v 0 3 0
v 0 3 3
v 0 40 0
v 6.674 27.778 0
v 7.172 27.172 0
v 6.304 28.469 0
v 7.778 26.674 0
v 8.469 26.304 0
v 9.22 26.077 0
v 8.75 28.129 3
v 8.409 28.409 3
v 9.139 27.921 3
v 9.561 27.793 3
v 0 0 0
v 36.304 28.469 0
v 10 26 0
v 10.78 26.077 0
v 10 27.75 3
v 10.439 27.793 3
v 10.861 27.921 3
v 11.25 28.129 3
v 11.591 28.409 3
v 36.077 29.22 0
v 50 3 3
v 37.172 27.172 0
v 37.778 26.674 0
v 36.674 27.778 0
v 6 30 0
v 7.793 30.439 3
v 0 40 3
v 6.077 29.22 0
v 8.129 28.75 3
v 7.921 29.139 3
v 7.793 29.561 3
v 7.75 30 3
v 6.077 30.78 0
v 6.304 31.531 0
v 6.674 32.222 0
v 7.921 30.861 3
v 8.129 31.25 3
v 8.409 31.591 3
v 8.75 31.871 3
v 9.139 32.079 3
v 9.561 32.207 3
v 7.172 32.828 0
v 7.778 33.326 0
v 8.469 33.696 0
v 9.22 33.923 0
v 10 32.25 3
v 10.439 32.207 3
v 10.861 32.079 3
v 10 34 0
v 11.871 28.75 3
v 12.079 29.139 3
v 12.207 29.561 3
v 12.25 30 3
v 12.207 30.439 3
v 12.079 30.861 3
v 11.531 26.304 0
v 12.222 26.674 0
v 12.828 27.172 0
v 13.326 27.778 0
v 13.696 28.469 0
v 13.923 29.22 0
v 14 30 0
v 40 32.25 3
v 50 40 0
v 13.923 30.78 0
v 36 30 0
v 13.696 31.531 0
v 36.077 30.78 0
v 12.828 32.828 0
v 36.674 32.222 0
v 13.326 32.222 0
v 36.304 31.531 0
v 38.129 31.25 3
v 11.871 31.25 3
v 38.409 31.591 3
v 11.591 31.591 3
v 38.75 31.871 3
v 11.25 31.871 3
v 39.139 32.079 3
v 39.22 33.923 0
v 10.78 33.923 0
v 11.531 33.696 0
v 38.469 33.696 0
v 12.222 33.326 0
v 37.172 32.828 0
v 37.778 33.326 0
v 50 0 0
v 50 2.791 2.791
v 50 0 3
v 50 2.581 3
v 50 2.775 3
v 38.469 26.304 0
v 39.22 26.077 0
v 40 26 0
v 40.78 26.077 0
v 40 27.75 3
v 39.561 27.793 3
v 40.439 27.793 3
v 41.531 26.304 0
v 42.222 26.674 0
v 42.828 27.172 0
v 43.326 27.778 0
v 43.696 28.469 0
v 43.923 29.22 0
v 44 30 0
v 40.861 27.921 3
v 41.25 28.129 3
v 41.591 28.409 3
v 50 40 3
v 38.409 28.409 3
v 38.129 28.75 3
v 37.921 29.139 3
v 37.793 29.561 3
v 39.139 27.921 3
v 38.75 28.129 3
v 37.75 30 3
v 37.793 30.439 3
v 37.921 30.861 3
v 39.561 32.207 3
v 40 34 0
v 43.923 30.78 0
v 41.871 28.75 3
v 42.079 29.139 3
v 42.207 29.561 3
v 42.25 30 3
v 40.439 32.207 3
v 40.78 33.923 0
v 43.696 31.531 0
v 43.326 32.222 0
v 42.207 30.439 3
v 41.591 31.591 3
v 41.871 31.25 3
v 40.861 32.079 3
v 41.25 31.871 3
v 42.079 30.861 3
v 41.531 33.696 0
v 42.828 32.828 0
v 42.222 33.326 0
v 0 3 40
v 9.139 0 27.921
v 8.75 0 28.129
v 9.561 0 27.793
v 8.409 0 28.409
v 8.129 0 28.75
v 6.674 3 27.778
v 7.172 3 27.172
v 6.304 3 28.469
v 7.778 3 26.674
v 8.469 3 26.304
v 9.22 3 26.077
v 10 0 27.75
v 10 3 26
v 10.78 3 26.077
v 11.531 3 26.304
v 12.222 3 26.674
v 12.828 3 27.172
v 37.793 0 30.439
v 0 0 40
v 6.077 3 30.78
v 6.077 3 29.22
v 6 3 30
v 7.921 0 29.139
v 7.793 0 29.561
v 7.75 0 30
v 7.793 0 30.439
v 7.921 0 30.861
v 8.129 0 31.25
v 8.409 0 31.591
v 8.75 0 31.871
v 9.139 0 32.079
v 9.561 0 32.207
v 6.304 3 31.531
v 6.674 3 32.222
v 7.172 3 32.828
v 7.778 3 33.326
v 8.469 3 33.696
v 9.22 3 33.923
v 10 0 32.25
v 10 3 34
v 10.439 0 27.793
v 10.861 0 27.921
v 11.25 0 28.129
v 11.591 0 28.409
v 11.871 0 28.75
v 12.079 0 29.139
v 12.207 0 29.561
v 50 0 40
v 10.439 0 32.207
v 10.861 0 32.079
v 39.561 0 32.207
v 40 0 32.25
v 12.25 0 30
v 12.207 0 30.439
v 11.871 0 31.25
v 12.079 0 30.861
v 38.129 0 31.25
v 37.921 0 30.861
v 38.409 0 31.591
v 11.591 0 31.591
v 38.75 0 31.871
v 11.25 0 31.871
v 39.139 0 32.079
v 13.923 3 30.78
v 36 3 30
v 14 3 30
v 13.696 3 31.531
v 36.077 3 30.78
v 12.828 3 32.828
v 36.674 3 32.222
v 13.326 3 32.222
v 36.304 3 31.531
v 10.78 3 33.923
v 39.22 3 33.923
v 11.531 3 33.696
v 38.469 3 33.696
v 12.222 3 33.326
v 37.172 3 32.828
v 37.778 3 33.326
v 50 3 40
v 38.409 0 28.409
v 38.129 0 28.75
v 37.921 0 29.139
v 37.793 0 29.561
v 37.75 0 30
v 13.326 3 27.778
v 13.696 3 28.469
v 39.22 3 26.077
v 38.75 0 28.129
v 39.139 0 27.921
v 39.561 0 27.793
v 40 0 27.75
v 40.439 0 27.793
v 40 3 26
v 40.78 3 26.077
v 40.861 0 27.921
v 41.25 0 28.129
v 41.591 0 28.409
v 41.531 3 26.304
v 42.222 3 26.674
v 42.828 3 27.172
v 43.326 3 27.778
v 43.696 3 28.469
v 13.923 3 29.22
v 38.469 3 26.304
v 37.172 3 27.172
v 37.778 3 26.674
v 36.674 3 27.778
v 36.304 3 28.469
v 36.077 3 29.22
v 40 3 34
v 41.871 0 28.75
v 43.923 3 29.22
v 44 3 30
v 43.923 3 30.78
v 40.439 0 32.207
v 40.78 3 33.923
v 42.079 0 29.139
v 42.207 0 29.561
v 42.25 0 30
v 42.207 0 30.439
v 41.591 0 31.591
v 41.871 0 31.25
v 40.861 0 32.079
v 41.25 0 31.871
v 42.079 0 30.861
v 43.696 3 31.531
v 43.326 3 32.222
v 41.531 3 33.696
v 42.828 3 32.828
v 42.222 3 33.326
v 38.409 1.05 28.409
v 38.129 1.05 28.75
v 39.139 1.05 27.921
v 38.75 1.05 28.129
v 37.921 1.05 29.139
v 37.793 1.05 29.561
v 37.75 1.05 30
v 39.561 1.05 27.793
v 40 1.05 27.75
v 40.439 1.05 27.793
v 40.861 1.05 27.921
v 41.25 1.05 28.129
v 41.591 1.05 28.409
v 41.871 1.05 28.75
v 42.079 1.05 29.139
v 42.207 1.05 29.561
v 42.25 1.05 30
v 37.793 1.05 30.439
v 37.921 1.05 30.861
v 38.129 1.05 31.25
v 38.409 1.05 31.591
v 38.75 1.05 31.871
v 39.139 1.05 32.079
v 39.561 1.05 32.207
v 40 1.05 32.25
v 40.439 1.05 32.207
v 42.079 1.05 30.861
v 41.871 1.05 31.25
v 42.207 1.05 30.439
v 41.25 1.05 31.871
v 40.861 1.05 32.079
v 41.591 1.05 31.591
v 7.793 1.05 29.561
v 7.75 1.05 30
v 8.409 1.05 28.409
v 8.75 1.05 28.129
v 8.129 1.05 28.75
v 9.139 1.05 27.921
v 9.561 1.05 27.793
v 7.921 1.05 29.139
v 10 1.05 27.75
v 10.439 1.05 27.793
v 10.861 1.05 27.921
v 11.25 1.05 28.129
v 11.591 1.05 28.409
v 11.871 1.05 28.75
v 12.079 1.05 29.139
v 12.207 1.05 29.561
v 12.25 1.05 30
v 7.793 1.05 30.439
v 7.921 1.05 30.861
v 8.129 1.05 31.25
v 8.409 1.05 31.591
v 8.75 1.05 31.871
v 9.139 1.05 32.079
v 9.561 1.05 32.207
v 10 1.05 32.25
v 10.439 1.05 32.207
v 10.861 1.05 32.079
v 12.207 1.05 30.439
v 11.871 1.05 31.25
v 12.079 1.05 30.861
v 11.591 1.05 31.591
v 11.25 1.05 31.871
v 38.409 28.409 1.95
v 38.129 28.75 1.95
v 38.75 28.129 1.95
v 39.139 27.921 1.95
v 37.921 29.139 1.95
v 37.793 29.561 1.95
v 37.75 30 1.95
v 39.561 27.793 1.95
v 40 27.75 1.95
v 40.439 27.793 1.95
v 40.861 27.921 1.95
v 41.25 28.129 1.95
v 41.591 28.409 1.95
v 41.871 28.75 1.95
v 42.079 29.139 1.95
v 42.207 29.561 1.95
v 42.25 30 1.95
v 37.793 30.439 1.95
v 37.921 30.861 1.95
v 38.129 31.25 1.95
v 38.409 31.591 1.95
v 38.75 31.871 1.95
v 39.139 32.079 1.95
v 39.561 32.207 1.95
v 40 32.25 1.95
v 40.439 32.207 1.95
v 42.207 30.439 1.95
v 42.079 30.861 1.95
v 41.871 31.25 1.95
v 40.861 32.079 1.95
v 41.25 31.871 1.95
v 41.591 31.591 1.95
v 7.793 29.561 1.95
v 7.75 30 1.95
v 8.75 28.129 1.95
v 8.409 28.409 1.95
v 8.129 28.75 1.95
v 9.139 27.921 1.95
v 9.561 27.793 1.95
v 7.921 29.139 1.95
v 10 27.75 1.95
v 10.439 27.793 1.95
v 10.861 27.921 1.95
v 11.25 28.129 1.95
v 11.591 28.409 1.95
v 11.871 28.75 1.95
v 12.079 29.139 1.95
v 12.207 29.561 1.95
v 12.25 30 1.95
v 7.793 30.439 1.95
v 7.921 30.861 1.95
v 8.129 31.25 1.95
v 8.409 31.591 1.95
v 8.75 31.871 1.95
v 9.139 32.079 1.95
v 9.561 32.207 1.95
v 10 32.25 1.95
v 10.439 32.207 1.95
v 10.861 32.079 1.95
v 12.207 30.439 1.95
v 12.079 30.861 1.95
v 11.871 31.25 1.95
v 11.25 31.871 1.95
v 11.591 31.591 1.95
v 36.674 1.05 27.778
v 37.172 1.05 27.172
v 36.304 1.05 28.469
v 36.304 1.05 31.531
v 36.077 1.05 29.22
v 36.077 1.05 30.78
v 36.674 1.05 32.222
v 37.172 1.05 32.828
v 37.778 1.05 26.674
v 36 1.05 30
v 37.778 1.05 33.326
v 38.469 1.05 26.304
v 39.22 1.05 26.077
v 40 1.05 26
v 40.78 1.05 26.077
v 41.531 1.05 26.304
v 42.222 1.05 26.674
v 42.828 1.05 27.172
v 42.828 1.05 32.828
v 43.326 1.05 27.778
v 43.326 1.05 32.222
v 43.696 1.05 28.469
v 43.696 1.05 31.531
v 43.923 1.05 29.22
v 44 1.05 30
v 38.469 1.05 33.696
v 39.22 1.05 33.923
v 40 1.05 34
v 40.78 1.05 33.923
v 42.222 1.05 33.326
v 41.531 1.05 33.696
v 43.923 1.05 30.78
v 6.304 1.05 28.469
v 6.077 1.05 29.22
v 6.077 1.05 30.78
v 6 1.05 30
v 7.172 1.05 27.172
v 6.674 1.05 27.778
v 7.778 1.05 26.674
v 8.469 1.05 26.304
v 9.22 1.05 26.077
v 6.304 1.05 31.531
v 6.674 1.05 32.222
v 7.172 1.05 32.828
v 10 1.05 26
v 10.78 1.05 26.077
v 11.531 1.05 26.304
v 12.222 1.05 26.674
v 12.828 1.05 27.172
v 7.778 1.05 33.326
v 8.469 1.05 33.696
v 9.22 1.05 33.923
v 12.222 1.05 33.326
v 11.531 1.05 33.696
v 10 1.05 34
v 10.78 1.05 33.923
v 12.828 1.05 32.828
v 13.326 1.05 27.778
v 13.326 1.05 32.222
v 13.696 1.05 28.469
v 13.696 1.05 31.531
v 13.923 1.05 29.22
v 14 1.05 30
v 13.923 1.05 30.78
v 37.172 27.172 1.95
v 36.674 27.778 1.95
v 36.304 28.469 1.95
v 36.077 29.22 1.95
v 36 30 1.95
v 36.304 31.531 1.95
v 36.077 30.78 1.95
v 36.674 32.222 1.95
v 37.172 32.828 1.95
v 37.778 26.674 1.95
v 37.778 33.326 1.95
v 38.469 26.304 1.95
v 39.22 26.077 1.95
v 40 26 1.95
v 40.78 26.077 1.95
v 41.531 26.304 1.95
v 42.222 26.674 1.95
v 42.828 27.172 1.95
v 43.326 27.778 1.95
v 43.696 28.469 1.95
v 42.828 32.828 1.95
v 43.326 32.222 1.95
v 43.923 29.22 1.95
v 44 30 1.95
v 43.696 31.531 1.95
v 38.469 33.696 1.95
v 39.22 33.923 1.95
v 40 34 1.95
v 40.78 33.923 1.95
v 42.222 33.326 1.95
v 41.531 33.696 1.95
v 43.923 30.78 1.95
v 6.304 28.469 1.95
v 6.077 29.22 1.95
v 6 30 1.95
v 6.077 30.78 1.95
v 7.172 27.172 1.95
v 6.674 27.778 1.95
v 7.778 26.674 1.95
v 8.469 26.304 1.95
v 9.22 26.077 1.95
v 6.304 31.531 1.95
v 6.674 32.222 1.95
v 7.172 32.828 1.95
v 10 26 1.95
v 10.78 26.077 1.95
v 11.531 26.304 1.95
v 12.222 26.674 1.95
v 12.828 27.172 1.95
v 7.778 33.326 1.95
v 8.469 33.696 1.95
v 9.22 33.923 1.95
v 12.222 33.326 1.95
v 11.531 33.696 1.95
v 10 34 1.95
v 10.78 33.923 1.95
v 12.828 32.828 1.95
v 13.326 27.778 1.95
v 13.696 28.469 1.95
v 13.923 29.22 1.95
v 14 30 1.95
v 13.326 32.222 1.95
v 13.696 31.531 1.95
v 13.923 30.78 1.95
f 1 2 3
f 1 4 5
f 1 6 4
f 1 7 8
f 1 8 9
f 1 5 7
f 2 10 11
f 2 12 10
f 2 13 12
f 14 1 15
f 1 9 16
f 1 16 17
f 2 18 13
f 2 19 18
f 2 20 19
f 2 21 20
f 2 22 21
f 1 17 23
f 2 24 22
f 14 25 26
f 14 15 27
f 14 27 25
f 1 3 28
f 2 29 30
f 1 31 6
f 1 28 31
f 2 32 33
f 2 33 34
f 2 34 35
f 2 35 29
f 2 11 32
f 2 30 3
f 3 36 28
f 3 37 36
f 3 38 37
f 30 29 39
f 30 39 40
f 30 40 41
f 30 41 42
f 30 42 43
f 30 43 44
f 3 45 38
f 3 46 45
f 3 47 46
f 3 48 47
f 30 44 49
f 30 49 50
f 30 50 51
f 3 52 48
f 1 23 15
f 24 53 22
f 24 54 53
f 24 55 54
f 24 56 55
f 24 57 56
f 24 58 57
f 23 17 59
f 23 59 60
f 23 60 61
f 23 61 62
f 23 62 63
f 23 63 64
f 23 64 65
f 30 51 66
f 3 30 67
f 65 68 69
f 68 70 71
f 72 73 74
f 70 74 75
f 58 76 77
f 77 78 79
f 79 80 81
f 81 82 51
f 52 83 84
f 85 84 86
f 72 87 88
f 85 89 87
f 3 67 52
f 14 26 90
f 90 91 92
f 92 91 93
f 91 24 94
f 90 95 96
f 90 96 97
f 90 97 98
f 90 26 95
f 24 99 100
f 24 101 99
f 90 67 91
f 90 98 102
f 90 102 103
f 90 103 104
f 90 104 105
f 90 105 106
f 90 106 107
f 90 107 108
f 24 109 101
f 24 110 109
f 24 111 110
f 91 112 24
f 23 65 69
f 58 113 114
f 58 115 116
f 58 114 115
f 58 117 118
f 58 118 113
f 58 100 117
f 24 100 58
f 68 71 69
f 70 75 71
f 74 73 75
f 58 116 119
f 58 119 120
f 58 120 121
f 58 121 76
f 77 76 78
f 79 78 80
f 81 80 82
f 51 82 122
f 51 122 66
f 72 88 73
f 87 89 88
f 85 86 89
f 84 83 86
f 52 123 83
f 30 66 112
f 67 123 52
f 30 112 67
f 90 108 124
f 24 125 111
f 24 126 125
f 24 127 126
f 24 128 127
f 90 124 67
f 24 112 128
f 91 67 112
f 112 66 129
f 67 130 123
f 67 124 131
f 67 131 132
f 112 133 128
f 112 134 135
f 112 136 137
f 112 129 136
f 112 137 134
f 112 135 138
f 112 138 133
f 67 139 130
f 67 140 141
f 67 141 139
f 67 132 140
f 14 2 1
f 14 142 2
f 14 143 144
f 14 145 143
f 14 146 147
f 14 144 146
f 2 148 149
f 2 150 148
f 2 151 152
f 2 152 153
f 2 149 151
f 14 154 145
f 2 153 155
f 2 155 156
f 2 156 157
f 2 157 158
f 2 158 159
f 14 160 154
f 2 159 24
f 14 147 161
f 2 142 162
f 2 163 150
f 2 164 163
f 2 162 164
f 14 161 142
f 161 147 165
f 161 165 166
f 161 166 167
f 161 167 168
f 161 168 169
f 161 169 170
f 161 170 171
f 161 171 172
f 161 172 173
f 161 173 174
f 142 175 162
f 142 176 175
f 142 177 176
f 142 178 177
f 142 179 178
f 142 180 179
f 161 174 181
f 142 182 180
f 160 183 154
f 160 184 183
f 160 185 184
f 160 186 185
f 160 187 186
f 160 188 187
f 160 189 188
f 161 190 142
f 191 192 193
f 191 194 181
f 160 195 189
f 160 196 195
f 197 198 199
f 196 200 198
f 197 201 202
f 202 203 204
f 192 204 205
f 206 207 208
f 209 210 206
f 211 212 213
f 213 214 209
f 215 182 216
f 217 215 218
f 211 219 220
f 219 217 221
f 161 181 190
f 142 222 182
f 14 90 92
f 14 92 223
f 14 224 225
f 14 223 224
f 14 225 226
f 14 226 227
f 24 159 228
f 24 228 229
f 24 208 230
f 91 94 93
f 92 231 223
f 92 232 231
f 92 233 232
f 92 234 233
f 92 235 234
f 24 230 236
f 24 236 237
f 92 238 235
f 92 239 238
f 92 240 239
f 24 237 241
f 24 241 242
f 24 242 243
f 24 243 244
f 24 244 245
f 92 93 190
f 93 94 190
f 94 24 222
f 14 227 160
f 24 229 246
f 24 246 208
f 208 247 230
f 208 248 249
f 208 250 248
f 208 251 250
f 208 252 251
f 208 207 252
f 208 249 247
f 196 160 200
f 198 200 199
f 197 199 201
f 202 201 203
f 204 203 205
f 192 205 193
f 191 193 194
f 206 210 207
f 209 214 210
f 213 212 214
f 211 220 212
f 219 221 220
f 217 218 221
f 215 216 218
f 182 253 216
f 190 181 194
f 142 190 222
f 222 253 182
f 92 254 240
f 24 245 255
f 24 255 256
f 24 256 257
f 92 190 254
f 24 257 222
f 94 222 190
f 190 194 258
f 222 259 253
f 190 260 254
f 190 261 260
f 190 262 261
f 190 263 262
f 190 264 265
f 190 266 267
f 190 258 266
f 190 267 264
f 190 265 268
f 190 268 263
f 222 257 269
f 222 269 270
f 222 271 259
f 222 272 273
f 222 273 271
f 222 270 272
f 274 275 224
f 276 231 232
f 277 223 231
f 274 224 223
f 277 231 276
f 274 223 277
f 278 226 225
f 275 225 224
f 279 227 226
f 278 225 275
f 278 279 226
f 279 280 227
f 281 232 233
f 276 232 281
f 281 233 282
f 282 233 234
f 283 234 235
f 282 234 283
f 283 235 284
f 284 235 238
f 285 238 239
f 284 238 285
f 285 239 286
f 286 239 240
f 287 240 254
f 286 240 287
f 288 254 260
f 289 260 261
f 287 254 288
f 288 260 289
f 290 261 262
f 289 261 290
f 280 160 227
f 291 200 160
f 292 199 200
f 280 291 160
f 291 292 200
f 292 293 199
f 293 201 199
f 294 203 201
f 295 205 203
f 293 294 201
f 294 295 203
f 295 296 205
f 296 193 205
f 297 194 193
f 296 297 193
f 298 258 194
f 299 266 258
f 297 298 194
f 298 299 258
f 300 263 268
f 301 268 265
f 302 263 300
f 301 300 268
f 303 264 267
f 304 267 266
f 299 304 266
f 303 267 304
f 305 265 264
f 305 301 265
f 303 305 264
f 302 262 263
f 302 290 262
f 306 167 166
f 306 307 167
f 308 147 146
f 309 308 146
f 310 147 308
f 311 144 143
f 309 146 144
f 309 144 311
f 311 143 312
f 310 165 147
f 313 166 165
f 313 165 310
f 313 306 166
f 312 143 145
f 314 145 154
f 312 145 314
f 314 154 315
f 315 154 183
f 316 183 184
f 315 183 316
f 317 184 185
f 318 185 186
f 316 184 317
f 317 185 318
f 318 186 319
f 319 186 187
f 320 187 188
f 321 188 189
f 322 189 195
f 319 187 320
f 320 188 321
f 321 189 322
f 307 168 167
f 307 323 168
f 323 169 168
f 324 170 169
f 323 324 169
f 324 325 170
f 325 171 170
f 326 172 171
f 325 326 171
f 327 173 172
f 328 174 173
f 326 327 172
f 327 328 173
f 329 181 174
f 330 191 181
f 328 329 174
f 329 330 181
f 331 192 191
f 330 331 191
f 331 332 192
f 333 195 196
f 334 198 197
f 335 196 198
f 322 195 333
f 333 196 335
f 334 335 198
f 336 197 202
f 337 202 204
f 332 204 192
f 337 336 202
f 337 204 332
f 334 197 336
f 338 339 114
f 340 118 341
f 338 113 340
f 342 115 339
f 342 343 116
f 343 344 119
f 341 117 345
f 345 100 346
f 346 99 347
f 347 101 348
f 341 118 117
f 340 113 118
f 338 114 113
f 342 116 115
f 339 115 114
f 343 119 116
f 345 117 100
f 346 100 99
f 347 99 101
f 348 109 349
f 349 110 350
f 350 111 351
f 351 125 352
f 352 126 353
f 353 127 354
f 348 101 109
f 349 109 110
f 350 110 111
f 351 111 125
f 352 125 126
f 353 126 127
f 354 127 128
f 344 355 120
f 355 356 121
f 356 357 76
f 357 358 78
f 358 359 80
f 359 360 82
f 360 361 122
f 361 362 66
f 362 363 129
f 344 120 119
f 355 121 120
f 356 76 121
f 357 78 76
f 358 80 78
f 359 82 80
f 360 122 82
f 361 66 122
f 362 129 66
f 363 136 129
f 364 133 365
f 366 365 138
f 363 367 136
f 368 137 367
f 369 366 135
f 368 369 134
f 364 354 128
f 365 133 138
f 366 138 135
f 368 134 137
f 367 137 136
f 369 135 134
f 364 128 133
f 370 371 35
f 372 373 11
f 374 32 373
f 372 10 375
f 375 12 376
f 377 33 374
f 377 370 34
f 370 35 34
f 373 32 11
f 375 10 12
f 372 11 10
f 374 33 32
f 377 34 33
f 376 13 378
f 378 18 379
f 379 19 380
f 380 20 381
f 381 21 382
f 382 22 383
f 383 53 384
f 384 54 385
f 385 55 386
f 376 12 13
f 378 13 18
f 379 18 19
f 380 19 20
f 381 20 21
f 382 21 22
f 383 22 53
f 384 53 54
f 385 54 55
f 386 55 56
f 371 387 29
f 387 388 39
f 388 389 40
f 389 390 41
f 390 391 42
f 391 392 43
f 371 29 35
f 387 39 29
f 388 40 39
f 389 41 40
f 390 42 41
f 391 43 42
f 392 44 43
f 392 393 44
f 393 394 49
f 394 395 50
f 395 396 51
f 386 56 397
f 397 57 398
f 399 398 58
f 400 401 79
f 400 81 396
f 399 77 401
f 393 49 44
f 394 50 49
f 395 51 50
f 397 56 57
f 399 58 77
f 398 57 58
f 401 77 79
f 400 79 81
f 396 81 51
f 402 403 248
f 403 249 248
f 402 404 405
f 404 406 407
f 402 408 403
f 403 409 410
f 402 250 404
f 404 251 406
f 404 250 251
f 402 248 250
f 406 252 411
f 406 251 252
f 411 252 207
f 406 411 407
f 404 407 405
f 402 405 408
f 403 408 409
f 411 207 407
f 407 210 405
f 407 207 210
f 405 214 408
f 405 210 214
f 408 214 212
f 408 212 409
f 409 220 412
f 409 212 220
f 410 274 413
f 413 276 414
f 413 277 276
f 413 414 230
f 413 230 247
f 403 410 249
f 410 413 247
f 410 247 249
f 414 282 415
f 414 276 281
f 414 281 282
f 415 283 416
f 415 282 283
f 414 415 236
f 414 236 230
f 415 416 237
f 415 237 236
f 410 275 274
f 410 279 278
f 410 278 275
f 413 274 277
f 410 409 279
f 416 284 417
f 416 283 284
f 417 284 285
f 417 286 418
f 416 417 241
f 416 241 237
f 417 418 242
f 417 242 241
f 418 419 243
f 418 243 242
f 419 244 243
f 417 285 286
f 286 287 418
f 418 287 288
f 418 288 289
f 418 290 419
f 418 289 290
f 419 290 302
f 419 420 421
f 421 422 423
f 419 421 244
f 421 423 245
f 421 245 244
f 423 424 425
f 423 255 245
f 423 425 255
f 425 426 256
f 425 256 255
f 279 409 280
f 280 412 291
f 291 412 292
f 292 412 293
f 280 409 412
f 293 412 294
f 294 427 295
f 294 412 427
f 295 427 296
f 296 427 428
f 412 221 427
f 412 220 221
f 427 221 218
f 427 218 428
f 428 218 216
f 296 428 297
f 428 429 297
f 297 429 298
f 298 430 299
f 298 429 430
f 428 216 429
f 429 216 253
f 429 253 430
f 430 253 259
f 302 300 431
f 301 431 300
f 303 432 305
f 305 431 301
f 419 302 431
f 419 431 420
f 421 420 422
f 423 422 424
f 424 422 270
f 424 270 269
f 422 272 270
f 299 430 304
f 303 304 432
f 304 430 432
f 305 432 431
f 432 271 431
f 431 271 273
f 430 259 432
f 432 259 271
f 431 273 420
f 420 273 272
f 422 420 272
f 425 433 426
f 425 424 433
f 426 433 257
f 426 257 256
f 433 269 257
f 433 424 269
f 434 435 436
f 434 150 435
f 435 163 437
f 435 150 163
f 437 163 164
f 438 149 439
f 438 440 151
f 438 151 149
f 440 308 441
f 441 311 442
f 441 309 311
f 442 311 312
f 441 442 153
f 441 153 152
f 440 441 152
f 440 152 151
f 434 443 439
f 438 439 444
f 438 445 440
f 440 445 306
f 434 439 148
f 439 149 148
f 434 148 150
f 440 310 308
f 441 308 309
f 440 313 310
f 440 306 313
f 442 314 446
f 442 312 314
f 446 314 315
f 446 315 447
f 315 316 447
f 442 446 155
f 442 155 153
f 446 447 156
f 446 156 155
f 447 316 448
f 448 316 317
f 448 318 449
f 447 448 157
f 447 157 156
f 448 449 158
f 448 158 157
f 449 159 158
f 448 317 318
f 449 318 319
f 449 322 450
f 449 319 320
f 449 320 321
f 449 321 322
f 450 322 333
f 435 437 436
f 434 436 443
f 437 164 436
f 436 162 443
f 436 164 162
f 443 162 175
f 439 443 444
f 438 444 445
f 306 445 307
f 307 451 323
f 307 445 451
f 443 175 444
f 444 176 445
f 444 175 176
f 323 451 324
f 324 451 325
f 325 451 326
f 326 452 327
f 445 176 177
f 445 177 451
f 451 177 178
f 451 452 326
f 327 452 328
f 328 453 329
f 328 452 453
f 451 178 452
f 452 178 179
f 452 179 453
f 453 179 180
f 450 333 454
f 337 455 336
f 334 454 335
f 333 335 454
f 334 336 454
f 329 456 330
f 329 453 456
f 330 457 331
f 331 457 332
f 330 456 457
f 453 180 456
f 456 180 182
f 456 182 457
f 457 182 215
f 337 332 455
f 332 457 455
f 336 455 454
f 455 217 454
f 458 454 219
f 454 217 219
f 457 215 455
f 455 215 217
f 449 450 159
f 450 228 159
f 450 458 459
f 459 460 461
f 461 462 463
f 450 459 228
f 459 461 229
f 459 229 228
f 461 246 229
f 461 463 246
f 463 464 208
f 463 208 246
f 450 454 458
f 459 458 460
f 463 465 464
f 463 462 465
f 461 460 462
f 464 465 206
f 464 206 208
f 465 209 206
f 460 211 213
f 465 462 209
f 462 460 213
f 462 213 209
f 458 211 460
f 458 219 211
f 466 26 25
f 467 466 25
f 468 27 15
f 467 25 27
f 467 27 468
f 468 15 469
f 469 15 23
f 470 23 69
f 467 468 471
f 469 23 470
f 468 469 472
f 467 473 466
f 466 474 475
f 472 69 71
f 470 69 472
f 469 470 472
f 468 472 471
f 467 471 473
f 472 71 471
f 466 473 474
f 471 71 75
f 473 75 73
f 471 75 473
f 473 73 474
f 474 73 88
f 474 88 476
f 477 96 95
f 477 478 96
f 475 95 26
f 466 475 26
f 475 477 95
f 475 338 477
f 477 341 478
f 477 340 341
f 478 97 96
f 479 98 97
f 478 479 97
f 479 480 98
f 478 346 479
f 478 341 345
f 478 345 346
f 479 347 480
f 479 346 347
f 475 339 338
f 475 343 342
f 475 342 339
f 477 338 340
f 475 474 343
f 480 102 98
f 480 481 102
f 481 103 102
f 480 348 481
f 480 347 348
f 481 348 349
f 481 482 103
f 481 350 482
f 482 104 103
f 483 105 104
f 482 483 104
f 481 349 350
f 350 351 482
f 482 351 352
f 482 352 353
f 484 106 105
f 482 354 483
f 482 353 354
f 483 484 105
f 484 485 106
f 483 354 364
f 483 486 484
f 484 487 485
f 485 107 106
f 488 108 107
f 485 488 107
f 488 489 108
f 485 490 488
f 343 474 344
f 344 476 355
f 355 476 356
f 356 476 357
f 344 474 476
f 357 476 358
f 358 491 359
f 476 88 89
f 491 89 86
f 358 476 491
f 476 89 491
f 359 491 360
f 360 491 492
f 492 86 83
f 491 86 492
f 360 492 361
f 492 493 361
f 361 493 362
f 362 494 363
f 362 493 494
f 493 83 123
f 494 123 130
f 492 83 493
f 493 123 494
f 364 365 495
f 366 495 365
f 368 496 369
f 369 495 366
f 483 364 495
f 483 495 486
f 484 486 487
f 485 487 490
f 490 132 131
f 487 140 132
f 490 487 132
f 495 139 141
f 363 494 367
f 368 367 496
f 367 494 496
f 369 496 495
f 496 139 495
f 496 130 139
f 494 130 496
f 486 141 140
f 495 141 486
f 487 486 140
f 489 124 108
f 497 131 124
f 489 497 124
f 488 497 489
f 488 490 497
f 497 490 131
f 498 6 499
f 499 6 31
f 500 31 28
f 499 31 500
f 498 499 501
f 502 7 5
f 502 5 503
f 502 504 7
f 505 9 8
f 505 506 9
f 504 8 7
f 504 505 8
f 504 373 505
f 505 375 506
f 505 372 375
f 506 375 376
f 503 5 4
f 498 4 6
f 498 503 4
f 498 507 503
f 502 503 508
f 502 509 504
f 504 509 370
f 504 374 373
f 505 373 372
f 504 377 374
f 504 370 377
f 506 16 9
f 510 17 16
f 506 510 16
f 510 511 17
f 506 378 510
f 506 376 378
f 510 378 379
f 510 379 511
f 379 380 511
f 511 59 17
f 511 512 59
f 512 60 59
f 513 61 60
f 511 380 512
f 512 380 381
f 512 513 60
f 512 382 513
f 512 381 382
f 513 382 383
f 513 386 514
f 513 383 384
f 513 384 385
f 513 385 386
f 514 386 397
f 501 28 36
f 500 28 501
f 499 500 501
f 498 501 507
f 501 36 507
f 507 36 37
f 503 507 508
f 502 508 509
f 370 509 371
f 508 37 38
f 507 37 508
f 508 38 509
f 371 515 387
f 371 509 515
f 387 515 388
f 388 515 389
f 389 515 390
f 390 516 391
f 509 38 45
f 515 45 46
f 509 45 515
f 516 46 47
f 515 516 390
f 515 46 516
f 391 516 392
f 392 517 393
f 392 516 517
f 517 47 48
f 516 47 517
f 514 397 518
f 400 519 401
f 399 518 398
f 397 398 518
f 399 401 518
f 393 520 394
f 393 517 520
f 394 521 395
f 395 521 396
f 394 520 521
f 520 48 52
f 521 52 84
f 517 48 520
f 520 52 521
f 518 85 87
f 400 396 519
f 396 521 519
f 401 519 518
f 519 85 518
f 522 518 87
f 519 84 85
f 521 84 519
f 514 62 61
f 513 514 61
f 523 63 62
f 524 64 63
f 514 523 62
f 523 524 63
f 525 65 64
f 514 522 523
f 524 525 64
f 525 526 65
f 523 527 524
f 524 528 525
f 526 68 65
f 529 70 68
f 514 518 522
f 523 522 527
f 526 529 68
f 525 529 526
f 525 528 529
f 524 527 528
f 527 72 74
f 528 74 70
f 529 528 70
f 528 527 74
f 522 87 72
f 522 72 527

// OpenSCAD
// L字金具のパラメータ
horizontal_width = 50;
horizontal_depth = 40;
vertical_width = 50;
vertical_height = 40;
thickness = 3;

// 皿穴のパラメータ
through_hole_dia = 4.5;
countersink_dia = 8;
countersink_depth = 2;
hole_offset = 10;

module countersunk_hole() {
    // 貫通穴
    cylinder(h = thickness + 0.1, d = through_hole_dia, center = false, $fn = 32);
    // 皿座面
    cylinder(h = countersink_depth, d = countersink_dia, center = false, $fn = 32);
}

difference() {
    union() {
        // 水平面
        translate([0, 0, 0])
            cube([horizontal_width, horizontal_depth, thickness]);
        
        // 垂直面
        translate([0, 0, 0])
            cube([vertical_width, thickness, vertical_height]);
    }
    
    // 水平面の皿穴（下から上に向けて穴あけ、皿座面は下側）
    translate([horizontal_width/2 - (horizontal_width/2 - hole_offset), horizontal_depth - hole_offset, -0.05])
        countersunk_hole();
    translate([horizontal_width/2 + (horizontal_width/2 - hole_offset), horizontal_depth - hole_offset, -0.05])
        countersunk_hole();
    
    // 垂直面の皿穴（前から後ろに向けて穴あけ、皿座面は前側）
    translate([vertical_width/2 - (vertical_width/2 - hole_offset), thickness + 0.05, vertical_height - hole_offset])
        rotate([90, 0, 0])
            countersunk_hole();
    translate([vertical_width/2 + (vertical_width/2 - hole_offset), thickness + 0.05, vertical_height - hole_offset])
        rotate([90, 0, 0])
            countersunk_hole();
}
